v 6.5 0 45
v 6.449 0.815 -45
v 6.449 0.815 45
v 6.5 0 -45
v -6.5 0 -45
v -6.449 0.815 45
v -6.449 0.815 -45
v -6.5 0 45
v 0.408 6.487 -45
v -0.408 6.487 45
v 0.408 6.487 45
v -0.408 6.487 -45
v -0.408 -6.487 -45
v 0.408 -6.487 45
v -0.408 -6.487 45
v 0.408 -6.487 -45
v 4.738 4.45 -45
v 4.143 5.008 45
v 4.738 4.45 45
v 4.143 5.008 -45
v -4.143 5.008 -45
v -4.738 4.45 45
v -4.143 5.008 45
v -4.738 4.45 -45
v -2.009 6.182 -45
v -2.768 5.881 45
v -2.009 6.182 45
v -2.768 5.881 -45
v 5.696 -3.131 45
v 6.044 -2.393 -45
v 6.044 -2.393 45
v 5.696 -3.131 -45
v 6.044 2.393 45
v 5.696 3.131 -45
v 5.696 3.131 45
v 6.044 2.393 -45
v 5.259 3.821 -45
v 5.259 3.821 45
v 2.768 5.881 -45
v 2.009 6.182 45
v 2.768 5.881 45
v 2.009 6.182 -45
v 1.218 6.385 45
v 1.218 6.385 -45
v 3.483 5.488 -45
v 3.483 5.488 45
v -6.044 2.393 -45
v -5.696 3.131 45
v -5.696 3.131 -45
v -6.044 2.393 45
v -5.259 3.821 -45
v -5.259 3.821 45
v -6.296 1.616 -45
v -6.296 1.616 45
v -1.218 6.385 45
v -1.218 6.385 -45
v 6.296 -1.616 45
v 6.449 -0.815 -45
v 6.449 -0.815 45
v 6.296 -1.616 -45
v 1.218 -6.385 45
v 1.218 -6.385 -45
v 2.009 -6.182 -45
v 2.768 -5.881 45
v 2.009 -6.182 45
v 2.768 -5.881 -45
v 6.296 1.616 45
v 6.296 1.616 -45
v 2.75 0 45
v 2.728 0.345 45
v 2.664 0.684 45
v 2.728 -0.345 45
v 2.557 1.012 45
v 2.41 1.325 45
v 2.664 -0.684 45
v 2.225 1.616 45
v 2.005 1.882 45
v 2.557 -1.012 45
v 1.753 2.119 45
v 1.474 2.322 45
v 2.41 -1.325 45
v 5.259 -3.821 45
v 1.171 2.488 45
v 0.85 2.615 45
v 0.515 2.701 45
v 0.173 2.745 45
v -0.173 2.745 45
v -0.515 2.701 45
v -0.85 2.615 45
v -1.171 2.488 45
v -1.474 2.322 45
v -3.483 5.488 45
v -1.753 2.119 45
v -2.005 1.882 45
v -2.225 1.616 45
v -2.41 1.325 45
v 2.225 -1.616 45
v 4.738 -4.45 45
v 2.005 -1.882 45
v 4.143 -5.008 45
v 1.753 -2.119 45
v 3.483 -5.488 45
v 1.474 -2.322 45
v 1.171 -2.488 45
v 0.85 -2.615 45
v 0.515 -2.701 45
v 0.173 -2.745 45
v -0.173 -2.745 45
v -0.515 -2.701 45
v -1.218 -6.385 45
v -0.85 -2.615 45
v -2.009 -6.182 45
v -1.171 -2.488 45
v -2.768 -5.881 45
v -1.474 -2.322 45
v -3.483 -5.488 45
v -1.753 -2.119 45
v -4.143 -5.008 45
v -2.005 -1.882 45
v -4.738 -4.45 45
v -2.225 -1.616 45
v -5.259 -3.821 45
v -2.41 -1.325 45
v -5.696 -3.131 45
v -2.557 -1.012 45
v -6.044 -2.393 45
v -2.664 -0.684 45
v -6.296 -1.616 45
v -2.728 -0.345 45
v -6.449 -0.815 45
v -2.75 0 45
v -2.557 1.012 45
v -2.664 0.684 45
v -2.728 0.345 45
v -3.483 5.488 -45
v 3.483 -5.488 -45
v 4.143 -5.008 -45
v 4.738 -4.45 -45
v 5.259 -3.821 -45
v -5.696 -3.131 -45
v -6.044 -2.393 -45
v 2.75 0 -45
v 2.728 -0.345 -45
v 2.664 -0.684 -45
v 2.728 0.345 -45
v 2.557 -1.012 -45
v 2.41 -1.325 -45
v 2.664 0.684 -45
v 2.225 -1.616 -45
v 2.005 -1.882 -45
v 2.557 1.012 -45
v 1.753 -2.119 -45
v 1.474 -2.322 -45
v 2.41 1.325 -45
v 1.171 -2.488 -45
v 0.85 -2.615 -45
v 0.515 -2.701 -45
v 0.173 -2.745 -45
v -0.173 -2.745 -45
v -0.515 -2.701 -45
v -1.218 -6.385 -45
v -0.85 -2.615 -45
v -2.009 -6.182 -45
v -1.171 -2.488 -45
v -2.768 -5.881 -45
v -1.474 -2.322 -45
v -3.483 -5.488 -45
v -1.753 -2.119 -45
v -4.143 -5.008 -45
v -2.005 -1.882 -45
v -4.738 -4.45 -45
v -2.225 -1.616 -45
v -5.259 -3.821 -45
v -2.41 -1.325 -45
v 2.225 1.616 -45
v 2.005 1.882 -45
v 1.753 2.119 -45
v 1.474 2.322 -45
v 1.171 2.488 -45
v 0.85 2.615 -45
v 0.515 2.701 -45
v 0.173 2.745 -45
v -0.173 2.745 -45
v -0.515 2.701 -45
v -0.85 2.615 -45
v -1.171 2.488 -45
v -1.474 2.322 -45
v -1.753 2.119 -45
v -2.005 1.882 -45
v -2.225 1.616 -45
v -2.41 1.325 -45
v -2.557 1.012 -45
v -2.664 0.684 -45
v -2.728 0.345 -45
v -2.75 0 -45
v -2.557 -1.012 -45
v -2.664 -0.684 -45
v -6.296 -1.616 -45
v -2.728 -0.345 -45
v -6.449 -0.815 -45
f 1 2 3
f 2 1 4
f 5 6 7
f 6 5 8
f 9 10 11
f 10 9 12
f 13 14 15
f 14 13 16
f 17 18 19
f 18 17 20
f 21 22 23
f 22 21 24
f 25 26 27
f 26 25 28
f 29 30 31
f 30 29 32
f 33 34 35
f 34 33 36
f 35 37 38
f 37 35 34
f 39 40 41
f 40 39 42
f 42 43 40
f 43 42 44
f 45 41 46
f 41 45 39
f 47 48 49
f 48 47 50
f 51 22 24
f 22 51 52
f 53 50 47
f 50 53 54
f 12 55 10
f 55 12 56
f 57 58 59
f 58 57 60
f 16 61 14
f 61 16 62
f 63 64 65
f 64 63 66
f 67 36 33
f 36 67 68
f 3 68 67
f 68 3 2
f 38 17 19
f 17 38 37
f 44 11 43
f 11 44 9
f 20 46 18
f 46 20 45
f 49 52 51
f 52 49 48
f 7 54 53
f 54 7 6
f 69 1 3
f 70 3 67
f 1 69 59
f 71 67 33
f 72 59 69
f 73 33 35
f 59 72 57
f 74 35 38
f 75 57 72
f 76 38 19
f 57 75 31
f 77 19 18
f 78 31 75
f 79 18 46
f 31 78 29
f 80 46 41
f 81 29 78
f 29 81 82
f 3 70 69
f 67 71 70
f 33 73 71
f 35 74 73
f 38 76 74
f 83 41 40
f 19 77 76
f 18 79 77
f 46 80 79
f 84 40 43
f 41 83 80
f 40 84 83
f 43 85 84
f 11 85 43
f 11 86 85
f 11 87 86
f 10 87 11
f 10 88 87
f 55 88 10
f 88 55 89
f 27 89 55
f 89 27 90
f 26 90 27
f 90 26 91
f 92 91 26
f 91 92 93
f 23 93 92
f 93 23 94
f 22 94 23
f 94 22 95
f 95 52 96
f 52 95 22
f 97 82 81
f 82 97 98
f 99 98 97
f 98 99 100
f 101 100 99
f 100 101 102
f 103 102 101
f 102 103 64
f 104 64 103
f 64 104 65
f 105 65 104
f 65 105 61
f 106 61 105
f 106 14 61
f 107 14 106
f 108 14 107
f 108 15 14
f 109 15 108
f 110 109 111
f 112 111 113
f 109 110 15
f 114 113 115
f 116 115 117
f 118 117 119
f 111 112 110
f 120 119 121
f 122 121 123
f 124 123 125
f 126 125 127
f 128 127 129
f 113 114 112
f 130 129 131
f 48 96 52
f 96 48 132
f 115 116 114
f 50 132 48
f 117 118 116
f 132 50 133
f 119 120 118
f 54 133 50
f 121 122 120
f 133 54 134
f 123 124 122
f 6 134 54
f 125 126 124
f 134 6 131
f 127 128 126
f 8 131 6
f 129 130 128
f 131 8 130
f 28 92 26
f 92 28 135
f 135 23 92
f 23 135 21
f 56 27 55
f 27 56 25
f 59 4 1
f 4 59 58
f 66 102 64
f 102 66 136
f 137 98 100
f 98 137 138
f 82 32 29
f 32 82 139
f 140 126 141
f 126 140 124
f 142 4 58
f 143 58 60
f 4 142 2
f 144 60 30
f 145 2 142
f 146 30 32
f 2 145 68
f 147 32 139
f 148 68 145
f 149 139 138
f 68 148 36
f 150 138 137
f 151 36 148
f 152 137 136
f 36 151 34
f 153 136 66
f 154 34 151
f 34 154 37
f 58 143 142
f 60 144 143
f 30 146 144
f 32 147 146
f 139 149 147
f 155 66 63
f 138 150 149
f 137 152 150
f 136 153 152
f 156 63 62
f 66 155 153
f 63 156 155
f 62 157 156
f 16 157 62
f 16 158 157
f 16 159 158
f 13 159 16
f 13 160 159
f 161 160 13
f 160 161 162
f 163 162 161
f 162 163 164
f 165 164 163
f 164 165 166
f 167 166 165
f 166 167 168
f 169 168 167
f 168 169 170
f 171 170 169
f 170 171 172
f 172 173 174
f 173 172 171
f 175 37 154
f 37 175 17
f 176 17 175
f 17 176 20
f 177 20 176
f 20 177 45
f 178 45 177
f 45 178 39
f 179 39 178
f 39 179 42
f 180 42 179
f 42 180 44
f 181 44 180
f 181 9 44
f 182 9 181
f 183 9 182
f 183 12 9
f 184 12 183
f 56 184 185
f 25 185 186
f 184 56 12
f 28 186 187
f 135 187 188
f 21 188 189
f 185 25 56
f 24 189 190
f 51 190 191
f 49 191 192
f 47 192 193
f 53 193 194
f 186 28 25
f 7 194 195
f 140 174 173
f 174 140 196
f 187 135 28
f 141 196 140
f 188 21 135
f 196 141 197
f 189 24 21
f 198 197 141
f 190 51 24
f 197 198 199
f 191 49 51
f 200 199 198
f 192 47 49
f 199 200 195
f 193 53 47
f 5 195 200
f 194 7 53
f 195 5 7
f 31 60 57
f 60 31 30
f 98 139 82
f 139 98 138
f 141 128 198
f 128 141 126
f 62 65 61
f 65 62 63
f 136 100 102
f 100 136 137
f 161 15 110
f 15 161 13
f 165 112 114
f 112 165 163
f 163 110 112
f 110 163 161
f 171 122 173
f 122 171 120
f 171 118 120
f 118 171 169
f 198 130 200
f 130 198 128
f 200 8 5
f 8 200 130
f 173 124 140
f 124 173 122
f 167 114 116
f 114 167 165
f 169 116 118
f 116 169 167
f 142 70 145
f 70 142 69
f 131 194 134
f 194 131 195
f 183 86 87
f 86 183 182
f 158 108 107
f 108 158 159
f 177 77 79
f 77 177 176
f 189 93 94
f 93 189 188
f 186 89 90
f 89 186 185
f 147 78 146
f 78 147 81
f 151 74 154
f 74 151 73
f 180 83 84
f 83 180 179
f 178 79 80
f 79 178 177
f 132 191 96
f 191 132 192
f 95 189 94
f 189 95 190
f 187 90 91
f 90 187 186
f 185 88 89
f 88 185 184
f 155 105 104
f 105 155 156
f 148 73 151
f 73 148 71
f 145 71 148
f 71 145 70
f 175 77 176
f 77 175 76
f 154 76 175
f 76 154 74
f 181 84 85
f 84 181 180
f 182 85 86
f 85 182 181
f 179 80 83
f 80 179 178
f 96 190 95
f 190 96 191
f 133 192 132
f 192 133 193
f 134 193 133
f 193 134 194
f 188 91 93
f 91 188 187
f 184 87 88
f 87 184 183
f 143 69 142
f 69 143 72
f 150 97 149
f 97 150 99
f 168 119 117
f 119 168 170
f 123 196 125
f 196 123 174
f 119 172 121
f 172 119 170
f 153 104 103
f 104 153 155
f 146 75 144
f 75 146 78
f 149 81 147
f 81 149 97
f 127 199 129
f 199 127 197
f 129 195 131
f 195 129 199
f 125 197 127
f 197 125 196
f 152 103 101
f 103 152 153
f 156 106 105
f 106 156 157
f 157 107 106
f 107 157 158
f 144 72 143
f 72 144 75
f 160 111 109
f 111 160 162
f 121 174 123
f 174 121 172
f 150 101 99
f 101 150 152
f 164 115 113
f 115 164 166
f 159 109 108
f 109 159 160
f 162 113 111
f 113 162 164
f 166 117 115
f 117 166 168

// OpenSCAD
$fn = 50;


difference() {
	union() {
		translate(v = [0, 0, -45.0000000000]) {
			cylinder(h = 90, r = 6.5000000000);
		}
	}
	union() {
		translate(v = [0, 0, -100.0000000000]) {
			cylinder(h = 200, r = 2.7500000000);
		}
	}
}
